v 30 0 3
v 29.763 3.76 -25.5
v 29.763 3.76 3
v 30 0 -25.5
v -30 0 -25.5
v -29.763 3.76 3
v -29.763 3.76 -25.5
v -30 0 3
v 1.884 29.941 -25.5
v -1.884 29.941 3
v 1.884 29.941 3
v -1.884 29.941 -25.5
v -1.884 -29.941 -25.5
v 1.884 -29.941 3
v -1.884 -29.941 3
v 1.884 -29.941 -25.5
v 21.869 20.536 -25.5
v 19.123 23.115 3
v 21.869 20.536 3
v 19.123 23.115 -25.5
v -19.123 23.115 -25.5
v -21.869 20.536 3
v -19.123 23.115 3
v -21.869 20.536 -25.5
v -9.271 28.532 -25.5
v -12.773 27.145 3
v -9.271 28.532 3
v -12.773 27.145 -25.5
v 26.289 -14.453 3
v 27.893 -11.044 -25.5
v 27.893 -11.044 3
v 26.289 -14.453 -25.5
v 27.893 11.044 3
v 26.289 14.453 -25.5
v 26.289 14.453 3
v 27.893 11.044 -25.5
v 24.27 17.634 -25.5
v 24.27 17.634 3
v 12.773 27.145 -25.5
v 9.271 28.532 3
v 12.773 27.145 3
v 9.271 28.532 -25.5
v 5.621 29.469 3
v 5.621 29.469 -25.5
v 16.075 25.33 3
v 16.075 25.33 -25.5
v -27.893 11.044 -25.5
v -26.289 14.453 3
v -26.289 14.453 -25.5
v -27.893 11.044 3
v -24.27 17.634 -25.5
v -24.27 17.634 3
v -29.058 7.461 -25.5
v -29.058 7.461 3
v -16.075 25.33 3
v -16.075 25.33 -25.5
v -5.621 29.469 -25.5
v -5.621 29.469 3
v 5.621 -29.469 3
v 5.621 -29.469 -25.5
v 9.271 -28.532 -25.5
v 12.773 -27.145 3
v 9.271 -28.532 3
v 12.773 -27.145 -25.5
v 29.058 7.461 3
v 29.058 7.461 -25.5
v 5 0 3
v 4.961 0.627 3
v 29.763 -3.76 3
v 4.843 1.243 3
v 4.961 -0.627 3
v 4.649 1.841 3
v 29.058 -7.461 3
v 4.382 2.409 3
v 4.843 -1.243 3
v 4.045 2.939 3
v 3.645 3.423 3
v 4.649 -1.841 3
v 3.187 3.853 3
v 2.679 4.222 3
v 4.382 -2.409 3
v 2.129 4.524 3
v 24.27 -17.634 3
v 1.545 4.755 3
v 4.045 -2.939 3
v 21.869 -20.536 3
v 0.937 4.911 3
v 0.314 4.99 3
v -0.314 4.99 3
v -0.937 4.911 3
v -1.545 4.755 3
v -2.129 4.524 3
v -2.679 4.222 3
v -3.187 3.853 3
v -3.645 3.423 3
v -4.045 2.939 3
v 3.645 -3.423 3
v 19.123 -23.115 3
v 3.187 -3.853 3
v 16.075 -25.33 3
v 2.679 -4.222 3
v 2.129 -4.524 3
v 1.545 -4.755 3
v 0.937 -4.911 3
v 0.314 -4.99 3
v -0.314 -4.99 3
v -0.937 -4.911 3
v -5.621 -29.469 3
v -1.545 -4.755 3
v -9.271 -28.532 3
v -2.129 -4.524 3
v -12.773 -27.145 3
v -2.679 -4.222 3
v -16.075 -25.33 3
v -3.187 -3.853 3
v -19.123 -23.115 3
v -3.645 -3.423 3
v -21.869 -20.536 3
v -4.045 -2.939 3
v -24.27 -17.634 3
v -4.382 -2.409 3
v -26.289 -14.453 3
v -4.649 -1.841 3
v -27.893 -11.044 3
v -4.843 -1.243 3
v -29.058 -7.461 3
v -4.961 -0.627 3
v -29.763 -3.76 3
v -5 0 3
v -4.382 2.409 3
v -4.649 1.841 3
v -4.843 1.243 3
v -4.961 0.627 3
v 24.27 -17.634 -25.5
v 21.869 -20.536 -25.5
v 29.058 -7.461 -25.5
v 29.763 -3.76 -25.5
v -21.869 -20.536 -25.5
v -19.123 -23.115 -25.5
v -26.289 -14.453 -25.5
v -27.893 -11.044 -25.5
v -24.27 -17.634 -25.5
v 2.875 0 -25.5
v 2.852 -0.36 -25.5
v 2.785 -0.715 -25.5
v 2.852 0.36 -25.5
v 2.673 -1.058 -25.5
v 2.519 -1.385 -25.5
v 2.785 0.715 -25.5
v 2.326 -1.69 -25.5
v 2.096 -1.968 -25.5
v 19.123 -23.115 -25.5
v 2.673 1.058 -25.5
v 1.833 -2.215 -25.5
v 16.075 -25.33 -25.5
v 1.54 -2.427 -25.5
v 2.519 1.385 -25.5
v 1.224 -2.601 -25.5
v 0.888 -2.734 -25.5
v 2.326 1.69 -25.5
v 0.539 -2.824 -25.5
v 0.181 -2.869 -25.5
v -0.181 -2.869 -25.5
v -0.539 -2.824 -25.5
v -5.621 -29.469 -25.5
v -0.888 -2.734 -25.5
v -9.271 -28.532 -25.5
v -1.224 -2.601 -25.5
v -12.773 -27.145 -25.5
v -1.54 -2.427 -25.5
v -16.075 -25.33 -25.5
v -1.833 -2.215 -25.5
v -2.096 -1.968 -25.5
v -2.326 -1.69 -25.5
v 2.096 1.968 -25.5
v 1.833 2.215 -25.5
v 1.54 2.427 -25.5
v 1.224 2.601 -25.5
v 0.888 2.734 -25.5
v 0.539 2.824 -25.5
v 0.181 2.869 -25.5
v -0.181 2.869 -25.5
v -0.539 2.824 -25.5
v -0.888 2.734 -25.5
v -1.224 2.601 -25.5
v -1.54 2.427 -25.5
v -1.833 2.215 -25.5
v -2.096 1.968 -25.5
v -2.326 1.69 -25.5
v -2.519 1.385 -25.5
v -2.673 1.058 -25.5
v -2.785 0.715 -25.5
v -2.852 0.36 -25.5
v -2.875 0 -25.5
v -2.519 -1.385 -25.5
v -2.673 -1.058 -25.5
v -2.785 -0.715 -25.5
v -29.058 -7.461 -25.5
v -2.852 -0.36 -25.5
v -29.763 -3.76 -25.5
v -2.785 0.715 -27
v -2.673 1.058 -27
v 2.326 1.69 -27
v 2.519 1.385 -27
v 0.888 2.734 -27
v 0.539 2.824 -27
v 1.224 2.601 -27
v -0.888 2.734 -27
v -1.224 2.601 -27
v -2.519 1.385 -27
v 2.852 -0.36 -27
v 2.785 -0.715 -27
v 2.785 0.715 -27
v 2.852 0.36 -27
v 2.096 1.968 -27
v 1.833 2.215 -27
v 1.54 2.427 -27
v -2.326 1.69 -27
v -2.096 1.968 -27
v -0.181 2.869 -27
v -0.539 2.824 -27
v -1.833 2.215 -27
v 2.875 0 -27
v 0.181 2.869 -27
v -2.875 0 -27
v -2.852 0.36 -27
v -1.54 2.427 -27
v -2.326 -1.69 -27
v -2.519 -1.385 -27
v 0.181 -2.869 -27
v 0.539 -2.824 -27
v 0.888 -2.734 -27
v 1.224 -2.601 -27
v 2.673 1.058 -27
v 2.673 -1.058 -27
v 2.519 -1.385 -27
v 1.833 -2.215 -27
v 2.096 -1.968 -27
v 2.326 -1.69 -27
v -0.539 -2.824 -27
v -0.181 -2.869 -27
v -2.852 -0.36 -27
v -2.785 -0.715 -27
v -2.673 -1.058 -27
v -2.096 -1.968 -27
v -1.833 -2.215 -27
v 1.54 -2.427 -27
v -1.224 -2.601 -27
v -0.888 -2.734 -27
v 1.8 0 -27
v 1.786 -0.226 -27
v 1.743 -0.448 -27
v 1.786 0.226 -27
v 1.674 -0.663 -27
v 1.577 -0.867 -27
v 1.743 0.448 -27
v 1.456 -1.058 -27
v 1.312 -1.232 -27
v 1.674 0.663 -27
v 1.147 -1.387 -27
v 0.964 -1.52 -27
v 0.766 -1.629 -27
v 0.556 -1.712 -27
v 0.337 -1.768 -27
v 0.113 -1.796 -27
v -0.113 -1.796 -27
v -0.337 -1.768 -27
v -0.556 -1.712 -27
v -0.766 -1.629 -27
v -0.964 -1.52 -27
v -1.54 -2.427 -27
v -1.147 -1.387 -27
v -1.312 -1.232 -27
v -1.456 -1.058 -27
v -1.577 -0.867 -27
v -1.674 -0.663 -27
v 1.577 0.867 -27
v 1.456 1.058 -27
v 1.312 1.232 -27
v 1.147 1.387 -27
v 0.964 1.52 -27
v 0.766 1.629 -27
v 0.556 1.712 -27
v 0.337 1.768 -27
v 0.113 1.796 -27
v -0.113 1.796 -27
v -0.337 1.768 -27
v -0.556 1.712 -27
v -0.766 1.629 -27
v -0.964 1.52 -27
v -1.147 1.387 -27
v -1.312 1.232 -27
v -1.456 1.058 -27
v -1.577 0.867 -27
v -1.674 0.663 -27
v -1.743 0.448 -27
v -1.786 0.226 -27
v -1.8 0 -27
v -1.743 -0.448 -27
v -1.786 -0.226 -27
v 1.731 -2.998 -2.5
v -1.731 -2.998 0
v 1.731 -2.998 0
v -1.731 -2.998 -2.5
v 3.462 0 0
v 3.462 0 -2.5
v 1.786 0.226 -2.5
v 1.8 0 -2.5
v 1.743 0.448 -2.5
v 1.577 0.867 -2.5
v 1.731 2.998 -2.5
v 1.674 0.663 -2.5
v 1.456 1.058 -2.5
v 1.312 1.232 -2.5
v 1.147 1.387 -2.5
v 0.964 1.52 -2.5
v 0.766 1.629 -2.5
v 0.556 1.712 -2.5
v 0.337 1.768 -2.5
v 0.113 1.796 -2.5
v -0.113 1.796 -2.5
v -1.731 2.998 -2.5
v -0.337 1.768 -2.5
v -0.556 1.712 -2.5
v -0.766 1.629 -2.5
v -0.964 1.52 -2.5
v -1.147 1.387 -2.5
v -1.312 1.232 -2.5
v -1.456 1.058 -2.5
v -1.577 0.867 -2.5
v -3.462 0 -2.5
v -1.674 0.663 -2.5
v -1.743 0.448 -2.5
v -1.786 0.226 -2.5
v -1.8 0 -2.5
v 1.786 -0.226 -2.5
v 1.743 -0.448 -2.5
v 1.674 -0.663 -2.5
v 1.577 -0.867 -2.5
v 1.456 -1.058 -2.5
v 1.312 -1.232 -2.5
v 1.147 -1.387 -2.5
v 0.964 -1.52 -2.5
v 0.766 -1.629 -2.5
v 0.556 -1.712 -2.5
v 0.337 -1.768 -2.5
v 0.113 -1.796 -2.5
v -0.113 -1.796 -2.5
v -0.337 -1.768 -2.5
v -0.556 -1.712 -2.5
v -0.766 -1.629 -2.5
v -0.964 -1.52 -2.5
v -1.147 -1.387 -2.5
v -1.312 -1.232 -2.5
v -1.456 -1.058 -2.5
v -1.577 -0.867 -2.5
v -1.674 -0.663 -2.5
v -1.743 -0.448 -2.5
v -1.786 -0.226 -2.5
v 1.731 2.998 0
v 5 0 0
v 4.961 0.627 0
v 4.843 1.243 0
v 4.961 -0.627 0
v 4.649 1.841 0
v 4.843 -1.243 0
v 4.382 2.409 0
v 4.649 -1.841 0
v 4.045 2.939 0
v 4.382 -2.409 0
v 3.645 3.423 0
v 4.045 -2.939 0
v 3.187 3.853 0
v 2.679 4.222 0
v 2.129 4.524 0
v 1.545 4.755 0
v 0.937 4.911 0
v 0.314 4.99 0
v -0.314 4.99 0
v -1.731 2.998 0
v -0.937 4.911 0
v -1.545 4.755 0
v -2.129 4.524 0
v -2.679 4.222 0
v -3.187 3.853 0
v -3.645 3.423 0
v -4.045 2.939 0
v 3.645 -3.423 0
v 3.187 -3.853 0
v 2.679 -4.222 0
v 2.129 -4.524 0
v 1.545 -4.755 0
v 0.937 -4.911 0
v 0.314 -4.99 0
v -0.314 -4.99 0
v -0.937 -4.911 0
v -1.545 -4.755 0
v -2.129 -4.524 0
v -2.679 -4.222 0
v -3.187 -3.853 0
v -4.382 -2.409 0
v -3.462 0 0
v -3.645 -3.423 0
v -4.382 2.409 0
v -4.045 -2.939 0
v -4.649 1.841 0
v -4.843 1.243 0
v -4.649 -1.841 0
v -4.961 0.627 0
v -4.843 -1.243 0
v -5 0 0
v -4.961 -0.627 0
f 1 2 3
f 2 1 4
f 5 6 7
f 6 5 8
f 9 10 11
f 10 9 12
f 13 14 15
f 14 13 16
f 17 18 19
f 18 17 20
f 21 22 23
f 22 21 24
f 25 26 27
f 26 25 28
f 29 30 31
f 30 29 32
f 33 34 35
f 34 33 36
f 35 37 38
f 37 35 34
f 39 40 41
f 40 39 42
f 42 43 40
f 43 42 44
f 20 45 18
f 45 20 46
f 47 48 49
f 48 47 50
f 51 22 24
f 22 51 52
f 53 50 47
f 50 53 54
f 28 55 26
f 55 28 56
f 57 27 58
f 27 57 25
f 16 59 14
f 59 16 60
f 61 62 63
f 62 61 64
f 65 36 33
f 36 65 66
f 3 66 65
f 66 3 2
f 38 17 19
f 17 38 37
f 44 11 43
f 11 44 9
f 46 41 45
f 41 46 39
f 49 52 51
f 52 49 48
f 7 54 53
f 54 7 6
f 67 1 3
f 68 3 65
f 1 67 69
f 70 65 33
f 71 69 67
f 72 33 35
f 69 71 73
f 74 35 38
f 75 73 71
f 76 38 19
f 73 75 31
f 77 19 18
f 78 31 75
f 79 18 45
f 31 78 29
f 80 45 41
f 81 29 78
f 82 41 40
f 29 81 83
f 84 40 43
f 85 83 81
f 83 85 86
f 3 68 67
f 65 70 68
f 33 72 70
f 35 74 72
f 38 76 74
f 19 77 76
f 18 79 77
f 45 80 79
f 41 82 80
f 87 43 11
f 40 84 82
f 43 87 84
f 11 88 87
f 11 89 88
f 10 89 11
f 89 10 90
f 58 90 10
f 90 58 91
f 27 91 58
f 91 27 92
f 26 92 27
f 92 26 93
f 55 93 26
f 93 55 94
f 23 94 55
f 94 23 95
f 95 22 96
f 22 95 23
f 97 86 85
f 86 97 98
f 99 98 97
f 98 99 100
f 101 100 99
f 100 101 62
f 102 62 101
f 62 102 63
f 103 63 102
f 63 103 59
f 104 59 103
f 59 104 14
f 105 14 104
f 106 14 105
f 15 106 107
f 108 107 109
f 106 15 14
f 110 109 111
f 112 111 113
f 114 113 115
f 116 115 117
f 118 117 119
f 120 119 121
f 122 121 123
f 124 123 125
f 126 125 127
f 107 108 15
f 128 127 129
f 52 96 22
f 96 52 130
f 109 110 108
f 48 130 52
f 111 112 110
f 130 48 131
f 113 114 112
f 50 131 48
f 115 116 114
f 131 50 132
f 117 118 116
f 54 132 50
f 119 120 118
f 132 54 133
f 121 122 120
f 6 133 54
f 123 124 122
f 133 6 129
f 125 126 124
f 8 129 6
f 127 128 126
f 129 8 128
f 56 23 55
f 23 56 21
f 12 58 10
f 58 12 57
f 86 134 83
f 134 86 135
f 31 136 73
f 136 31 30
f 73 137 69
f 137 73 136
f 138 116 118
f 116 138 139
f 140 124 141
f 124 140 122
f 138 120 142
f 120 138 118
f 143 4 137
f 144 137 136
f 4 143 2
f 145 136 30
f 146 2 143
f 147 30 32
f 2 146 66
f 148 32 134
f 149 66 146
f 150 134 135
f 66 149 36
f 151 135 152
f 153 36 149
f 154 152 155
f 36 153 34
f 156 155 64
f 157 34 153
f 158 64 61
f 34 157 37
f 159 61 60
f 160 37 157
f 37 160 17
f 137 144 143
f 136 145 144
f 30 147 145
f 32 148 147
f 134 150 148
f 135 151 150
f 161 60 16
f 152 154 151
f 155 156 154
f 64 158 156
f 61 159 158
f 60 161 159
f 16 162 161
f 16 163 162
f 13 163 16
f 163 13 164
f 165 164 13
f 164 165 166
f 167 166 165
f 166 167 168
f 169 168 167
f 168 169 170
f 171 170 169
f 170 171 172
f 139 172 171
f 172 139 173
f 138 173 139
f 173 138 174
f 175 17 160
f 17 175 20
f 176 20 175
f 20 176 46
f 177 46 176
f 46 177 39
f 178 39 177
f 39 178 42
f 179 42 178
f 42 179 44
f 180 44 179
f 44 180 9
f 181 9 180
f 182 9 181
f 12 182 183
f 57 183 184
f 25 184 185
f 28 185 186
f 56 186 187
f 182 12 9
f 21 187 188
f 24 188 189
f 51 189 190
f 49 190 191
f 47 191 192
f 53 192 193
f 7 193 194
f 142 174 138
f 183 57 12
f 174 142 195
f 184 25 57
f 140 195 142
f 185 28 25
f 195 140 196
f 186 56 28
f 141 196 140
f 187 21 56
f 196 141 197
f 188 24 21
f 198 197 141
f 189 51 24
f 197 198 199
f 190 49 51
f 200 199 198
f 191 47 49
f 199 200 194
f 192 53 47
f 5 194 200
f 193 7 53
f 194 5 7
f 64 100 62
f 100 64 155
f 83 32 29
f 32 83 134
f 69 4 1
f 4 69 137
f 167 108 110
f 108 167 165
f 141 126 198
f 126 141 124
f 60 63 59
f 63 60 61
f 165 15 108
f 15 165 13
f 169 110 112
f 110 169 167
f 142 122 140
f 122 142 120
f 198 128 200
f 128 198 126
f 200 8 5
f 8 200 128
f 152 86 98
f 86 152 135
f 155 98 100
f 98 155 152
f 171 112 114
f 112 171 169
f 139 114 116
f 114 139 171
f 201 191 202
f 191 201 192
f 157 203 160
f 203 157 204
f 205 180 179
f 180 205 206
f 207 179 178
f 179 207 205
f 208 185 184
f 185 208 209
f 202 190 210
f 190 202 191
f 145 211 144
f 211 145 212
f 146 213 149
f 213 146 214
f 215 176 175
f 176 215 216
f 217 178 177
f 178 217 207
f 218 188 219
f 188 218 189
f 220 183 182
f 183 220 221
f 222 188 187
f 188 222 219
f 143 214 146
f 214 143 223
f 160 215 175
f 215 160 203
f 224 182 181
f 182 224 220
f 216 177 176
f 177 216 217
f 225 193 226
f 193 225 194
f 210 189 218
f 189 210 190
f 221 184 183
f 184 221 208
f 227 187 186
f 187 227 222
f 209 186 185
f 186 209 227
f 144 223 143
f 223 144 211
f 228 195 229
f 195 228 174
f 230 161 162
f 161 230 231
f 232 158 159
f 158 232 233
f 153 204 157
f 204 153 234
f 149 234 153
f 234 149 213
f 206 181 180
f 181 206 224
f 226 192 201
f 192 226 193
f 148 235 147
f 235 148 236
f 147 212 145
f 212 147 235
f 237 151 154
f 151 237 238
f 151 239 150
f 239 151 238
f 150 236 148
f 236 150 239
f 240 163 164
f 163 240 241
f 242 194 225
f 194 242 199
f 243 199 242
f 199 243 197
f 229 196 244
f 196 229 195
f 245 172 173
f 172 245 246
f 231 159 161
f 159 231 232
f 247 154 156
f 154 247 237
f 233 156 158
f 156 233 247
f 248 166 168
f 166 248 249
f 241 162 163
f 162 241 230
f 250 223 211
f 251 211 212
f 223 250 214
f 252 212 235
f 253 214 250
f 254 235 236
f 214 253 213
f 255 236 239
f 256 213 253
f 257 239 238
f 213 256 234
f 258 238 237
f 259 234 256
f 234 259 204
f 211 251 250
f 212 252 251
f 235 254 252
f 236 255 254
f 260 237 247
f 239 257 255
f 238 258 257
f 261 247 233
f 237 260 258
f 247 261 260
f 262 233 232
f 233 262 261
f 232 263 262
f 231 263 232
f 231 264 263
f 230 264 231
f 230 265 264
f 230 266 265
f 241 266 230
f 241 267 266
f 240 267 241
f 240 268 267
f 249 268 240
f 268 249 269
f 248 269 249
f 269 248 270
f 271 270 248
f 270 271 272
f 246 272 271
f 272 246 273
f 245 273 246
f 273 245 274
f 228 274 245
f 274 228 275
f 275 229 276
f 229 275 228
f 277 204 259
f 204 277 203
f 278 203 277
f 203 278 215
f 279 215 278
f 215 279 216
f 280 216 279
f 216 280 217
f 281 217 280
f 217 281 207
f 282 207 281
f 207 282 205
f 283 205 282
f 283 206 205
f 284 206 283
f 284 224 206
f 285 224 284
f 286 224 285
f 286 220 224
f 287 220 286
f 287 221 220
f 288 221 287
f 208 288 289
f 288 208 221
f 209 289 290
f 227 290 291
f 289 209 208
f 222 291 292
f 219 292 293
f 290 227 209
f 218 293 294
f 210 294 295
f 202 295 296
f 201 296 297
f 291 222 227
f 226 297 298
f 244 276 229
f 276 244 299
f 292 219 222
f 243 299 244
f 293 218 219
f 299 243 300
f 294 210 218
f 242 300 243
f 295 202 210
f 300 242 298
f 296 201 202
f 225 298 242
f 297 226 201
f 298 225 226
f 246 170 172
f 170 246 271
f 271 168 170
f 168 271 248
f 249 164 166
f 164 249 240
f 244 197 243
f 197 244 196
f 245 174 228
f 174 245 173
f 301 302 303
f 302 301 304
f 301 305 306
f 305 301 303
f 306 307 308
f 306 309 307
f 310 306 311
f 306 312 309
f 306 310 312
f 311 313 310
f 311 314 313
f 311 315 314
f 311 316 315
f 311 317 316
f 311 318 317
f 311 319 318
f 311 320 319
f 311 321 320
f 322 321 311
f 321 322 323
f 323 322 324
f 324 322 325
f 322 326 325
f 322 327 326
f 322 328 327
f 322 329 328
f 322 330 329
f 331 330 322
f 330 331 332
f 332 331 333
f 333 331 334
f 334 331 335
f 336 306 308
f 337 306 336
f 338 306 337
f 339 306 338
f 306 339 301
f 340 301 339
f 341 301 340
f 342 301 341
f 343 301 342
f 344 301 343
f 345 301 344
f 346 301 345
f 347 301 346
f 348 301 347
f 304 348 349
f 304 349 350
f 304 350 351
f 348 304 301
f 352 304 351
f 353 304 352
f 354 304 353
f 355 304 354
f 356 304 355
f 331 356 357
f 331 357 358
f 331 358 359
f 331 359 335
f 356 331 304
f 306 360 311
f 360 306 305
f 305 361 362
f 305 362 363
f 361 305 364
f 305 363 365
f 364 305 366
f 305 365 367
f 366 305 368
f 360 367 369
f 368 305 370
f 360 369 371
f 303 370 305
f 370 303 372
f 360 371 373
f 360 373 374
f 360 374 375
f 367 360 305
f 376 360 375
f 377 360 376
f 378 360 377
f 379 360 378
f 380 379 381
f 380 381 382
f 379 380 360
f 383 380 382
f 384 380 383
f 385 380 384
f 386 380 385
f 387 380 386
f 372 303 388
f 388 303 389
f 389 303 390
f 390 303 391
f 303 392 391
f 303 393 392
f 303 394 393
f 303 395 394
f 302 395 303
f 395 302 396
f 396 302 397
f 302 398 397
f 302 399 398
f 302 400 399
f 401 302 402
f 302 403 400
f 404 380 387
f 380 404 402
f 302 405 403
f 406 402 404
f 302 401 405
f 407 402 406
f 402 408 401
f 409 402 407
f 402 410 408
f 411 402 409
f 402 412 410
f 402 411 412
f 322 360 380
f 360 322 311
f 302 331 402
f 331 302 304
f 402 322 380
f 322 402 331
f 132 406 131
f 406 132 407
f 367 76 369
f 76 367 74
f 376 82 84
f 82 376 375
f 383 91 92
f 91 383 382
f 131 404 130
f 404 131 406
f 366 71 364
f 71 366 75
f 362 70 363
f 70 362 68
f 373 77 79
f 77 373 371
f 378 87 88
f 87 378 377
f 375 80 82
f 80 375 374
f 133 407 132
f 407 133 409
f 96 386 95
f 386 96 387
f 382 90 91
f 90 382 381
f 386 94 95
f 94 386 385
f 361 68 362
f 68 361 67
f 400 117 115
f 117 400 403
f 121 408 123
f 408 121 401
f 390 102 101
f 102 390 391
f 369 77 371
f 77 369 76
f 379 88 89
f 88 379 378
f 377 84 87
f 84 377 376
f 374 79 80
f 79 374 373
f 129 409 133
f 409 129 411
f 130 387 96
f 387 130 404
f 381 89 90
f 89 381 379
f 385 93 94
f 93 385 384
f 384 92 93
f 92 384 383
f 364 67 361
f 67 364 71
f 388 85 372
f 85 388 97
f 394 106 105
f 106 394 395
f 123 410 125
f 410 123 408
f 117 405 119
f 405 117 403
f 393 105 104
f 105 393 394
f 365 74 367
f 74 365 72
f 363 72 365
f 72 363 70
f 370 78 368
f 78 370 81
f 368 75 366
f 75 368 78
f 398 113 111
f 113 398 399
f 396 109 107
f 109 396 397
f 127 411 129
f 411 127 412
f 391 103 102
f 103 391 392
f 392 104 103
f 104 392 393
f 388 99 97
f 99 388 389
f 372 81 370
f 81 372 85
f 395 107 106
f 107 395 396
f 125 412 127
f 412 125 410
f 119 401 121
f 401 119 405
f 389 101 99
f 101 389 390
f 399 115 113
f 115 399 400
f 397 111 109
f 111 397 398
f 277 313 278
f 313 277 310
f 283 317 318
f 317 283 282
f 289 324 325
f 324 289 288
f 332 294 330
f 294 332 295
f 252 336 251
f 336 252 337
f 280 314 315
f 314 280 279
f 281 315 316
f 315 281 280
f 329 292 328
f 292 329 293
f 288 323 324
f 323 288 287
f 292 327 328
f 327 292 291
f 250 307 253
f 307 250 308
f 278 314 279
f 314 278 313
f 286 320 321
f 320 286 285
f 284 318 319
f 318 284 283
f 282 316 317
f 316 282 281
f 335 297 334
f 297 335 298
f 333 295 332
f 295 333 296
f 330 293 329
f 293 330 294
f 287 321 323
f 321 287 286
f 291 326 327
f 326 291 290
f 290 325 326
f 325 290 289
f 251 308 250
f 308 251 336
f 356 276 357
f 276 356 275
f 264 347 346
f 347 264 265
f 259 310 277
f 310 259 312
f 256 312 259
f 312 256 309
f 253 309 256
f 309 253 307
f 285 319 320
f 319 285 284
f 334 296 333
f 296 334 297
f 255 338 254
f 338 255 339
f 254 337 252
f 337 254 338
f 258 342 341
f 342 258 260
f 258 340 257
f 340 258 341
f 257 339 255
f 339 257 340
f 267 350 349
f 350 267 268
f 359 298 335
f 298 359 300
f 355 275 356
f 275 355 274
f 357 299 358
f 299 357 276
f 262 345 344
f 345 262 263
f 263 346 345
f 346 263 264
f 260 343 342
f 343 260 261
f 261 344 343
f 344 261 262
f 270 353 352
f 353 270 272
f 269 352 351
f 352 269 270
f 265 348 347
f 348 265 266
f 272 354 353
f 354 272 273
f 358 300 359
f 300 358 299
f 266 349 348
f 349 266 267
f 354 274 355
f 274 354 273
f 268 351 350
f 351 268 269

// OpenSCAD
$fn = 50;

difference() {
	union() {
		translate(v = [0, 0, -25.5]) {
			cylinder(h = 28.5, r = 30.0);
		}
		#translate(v = [0, 0, -27.0]) {
			cylinder(h = 27, r = 2.875);
		}
	}
	union() {
		translate(v = [0, 0, 0]) {
			rotate(a = [0, 0, 0]) {
				difference() {
					union() {
						translate(v = [0, 0, -2.5]) {
							linear_extrude(height = 2.5) {
								polygon(points = [[3.4619999999999997, 0.0], [1.7310000000000003, 2.9981799479017264], [-1.7309999999999992, 2.9981799479017264], [-3.4619999999999997, 4.2397272186481365e-16], [-1.7310000000000014, -2.998179947901726], [1.7309999999999977, -2.9981799479017277]]);
							}
						}
					}
					union();
				}
			}
		}
		#cylinder(h = 3, r = 5.0);
		#translate(v = [0, 0, -100.0]) {
			cylinder(h = 200, r = 1.8);
		}
	}
}
